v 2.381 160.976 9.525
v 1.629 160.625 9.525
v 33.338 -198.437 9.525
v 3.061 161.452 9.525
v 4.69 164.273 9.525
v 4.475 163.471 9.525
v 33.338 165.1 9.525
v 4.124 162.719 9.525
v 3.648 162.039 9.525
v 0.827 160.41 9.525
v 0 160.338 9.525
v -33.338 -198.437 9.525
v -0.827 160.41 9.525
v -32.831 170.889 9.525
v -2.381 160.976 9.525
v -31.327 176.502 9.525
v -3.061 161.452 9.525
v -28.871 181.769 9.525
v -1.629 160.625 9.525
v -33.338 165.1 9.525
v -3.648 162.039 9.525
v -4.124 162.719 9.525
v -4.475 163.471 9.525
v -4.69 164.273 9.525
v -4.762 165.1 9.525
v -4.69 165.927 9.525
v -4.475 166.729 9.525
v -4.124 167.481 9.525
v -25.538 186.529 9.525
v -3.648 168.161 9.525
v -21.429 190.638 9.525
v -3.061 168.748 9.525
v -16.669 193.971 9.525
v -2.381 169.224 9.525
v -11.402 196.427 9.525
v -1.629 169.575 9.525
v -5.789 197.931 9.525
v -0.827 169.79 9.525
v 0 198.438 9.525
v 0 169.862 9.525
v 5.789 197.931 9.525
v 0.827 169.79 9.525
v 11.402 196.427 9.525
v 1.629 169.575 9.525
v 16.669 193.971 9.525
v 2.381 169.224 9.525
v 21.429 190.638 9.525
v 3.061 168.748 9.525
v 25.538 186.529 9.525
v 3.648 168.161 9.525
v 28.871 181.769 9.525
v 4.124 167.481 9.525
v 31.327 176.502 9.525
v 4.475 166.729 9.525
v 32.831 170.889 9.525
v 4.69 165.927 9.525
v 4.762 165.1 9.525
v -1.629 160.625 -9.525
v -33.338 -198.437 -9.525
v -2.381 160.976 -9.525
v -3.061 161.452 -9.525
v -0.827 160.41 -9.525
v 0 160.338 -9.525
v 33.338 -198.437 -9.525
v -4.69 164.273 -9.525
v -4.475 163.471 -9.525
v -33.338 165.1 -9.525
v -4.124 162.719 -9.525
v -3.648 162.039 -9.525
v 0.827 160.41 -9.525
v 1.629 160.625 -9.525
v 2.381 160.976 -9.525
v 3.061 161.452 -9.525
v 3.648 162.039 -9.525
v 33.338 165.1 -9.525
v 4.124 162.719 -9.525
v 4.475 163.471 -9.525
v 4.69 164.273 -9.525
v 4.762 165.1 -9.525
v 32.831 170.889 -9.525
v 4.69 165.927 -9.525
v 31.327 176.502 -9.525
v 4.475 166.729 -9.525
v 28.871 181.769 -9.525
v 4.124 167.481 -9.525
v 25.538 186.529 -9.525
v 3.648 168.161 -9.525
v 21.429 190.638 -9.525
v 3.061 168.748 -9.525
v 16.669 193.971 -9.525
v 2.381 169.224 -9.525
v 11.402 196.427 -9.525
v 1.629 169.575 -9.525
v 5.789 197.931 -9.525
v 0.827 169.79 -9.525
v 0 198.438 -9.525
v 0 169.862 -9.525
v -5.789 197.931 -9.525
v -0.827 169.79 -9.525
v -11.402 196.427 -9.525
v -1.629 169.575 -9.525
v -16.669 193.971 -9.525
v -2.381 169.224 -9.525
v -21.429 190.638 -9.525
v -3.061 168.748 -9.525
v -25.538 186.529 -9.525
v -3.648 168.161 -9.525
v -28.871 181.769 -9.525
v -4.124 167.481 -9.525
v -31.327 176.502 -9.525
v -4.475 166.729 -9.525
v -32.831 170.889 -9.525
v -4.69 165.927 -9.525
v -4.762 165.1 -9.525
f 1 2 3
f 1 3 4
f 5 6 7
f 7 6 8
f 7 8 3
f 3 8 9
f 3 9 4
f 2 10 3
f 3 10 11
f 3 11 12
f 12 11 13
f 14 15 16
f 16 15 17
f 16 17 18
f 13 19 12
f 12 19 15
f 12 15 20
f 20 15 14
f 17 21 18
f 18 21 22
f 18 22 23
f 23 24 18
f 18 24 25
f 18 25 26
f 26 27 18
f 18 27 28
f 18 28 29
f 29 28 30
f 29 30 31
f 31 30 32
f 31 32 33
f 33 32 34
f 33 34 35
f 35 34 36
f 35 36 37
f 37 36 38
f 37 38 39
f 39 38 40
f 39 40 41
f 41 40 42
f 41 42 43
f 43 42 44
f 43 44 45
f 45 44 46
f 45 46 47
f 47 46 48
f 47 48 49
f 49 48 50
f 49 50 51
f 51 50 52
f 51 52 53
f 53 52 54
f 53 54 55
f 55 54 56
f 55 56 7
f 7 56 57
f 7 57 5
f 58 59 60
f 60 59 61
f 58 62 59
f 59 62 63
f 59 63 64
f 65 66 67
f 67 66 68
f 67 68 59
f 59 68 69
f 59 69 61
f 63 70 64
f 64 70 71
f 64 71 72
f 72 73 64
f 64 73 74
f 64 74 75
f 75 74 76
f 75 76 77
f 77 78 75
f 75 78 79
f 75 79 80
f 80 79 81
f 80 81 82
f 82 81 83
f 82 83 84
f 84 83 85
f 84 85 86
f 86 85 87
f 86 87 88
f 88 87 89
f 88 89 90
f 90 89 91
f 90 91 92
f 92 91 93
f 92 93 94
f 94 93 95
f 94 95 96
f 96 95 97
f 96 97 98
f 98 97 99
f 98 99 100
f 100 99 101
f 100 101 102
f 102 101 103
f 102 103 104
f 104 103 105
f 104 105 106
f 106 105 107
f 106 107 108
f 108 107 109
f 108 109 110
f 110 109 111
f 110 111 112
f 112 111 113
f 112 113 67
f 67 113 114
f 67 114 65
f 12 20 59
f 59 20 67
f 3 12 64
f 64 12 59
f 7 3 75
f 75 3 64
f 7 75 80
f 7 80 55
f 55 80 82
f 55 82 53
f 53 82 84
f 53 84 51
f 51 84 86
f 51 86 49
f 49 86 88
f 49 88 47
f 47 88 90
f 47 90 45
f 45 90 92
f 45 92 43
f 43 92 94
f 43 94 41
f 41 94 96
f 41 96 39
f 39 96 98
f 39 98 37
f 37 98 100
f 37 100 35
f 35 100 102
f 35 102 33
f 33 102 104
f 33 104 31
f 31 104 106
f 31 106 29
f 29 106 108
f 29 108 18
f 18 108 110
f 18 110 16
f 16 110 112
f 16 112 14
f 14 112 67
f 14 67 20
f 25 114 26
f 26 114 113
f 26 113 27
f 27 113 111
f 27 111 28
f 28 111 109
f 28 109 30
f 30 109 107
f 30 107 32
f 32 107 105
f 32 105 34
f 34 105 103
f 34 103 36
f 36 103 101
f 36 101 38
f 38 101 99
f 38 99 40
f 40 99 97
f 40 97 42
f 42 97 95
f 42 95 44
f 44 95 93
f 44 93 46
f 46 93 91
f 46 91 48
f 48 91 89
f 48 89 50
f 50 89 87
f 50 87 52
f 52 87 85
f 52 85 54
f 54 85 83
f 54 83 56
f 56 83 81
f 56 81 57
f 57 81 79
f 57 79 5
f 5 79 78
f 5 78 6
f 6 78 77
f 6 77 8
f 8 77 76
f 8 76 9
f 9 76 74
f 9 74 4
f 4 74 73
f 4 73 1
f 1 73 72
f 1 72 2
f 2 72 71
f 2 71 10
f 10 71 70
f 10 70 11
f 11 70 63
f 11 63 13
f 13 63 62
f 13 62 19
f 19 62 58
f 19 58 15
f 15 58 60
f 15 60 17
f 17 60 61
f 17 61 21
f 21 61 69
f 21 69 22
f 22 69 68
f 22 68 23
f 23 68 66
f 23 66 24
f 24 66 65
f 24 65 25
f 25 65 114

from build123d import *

# Parameters (mm, degrees)
SKETCH1_R           = 4.7625
BOSS_EXTRUDE1_DEPTH = 9.525


with BuildPart() as part:
    # Sketch1 → Boss-Extrude1 (new body, symmetric)
    with BuildSketch(Plane.XY):
        with BuildLine():
            Line((33.3375, -198.4375), (-33.3375, -198.4375))
            Line((-33.3375, -198.4375), (-33.3375, 165.1))
            ThreePointArc((-33.3375, 165.1), (0, 198.4375), (33.3375, 165.1))
            Line((33.3375, 165.1), (33.3375, -198.4375))
        make_face()
        with Locations((0, 165.1)):
            Circle(SKETCH1_R, mode=Mode.SUBTRACT)
    extrude(amount=BOSS_EXTRUDE1_DEPTH, both=True)


solid = part.part
